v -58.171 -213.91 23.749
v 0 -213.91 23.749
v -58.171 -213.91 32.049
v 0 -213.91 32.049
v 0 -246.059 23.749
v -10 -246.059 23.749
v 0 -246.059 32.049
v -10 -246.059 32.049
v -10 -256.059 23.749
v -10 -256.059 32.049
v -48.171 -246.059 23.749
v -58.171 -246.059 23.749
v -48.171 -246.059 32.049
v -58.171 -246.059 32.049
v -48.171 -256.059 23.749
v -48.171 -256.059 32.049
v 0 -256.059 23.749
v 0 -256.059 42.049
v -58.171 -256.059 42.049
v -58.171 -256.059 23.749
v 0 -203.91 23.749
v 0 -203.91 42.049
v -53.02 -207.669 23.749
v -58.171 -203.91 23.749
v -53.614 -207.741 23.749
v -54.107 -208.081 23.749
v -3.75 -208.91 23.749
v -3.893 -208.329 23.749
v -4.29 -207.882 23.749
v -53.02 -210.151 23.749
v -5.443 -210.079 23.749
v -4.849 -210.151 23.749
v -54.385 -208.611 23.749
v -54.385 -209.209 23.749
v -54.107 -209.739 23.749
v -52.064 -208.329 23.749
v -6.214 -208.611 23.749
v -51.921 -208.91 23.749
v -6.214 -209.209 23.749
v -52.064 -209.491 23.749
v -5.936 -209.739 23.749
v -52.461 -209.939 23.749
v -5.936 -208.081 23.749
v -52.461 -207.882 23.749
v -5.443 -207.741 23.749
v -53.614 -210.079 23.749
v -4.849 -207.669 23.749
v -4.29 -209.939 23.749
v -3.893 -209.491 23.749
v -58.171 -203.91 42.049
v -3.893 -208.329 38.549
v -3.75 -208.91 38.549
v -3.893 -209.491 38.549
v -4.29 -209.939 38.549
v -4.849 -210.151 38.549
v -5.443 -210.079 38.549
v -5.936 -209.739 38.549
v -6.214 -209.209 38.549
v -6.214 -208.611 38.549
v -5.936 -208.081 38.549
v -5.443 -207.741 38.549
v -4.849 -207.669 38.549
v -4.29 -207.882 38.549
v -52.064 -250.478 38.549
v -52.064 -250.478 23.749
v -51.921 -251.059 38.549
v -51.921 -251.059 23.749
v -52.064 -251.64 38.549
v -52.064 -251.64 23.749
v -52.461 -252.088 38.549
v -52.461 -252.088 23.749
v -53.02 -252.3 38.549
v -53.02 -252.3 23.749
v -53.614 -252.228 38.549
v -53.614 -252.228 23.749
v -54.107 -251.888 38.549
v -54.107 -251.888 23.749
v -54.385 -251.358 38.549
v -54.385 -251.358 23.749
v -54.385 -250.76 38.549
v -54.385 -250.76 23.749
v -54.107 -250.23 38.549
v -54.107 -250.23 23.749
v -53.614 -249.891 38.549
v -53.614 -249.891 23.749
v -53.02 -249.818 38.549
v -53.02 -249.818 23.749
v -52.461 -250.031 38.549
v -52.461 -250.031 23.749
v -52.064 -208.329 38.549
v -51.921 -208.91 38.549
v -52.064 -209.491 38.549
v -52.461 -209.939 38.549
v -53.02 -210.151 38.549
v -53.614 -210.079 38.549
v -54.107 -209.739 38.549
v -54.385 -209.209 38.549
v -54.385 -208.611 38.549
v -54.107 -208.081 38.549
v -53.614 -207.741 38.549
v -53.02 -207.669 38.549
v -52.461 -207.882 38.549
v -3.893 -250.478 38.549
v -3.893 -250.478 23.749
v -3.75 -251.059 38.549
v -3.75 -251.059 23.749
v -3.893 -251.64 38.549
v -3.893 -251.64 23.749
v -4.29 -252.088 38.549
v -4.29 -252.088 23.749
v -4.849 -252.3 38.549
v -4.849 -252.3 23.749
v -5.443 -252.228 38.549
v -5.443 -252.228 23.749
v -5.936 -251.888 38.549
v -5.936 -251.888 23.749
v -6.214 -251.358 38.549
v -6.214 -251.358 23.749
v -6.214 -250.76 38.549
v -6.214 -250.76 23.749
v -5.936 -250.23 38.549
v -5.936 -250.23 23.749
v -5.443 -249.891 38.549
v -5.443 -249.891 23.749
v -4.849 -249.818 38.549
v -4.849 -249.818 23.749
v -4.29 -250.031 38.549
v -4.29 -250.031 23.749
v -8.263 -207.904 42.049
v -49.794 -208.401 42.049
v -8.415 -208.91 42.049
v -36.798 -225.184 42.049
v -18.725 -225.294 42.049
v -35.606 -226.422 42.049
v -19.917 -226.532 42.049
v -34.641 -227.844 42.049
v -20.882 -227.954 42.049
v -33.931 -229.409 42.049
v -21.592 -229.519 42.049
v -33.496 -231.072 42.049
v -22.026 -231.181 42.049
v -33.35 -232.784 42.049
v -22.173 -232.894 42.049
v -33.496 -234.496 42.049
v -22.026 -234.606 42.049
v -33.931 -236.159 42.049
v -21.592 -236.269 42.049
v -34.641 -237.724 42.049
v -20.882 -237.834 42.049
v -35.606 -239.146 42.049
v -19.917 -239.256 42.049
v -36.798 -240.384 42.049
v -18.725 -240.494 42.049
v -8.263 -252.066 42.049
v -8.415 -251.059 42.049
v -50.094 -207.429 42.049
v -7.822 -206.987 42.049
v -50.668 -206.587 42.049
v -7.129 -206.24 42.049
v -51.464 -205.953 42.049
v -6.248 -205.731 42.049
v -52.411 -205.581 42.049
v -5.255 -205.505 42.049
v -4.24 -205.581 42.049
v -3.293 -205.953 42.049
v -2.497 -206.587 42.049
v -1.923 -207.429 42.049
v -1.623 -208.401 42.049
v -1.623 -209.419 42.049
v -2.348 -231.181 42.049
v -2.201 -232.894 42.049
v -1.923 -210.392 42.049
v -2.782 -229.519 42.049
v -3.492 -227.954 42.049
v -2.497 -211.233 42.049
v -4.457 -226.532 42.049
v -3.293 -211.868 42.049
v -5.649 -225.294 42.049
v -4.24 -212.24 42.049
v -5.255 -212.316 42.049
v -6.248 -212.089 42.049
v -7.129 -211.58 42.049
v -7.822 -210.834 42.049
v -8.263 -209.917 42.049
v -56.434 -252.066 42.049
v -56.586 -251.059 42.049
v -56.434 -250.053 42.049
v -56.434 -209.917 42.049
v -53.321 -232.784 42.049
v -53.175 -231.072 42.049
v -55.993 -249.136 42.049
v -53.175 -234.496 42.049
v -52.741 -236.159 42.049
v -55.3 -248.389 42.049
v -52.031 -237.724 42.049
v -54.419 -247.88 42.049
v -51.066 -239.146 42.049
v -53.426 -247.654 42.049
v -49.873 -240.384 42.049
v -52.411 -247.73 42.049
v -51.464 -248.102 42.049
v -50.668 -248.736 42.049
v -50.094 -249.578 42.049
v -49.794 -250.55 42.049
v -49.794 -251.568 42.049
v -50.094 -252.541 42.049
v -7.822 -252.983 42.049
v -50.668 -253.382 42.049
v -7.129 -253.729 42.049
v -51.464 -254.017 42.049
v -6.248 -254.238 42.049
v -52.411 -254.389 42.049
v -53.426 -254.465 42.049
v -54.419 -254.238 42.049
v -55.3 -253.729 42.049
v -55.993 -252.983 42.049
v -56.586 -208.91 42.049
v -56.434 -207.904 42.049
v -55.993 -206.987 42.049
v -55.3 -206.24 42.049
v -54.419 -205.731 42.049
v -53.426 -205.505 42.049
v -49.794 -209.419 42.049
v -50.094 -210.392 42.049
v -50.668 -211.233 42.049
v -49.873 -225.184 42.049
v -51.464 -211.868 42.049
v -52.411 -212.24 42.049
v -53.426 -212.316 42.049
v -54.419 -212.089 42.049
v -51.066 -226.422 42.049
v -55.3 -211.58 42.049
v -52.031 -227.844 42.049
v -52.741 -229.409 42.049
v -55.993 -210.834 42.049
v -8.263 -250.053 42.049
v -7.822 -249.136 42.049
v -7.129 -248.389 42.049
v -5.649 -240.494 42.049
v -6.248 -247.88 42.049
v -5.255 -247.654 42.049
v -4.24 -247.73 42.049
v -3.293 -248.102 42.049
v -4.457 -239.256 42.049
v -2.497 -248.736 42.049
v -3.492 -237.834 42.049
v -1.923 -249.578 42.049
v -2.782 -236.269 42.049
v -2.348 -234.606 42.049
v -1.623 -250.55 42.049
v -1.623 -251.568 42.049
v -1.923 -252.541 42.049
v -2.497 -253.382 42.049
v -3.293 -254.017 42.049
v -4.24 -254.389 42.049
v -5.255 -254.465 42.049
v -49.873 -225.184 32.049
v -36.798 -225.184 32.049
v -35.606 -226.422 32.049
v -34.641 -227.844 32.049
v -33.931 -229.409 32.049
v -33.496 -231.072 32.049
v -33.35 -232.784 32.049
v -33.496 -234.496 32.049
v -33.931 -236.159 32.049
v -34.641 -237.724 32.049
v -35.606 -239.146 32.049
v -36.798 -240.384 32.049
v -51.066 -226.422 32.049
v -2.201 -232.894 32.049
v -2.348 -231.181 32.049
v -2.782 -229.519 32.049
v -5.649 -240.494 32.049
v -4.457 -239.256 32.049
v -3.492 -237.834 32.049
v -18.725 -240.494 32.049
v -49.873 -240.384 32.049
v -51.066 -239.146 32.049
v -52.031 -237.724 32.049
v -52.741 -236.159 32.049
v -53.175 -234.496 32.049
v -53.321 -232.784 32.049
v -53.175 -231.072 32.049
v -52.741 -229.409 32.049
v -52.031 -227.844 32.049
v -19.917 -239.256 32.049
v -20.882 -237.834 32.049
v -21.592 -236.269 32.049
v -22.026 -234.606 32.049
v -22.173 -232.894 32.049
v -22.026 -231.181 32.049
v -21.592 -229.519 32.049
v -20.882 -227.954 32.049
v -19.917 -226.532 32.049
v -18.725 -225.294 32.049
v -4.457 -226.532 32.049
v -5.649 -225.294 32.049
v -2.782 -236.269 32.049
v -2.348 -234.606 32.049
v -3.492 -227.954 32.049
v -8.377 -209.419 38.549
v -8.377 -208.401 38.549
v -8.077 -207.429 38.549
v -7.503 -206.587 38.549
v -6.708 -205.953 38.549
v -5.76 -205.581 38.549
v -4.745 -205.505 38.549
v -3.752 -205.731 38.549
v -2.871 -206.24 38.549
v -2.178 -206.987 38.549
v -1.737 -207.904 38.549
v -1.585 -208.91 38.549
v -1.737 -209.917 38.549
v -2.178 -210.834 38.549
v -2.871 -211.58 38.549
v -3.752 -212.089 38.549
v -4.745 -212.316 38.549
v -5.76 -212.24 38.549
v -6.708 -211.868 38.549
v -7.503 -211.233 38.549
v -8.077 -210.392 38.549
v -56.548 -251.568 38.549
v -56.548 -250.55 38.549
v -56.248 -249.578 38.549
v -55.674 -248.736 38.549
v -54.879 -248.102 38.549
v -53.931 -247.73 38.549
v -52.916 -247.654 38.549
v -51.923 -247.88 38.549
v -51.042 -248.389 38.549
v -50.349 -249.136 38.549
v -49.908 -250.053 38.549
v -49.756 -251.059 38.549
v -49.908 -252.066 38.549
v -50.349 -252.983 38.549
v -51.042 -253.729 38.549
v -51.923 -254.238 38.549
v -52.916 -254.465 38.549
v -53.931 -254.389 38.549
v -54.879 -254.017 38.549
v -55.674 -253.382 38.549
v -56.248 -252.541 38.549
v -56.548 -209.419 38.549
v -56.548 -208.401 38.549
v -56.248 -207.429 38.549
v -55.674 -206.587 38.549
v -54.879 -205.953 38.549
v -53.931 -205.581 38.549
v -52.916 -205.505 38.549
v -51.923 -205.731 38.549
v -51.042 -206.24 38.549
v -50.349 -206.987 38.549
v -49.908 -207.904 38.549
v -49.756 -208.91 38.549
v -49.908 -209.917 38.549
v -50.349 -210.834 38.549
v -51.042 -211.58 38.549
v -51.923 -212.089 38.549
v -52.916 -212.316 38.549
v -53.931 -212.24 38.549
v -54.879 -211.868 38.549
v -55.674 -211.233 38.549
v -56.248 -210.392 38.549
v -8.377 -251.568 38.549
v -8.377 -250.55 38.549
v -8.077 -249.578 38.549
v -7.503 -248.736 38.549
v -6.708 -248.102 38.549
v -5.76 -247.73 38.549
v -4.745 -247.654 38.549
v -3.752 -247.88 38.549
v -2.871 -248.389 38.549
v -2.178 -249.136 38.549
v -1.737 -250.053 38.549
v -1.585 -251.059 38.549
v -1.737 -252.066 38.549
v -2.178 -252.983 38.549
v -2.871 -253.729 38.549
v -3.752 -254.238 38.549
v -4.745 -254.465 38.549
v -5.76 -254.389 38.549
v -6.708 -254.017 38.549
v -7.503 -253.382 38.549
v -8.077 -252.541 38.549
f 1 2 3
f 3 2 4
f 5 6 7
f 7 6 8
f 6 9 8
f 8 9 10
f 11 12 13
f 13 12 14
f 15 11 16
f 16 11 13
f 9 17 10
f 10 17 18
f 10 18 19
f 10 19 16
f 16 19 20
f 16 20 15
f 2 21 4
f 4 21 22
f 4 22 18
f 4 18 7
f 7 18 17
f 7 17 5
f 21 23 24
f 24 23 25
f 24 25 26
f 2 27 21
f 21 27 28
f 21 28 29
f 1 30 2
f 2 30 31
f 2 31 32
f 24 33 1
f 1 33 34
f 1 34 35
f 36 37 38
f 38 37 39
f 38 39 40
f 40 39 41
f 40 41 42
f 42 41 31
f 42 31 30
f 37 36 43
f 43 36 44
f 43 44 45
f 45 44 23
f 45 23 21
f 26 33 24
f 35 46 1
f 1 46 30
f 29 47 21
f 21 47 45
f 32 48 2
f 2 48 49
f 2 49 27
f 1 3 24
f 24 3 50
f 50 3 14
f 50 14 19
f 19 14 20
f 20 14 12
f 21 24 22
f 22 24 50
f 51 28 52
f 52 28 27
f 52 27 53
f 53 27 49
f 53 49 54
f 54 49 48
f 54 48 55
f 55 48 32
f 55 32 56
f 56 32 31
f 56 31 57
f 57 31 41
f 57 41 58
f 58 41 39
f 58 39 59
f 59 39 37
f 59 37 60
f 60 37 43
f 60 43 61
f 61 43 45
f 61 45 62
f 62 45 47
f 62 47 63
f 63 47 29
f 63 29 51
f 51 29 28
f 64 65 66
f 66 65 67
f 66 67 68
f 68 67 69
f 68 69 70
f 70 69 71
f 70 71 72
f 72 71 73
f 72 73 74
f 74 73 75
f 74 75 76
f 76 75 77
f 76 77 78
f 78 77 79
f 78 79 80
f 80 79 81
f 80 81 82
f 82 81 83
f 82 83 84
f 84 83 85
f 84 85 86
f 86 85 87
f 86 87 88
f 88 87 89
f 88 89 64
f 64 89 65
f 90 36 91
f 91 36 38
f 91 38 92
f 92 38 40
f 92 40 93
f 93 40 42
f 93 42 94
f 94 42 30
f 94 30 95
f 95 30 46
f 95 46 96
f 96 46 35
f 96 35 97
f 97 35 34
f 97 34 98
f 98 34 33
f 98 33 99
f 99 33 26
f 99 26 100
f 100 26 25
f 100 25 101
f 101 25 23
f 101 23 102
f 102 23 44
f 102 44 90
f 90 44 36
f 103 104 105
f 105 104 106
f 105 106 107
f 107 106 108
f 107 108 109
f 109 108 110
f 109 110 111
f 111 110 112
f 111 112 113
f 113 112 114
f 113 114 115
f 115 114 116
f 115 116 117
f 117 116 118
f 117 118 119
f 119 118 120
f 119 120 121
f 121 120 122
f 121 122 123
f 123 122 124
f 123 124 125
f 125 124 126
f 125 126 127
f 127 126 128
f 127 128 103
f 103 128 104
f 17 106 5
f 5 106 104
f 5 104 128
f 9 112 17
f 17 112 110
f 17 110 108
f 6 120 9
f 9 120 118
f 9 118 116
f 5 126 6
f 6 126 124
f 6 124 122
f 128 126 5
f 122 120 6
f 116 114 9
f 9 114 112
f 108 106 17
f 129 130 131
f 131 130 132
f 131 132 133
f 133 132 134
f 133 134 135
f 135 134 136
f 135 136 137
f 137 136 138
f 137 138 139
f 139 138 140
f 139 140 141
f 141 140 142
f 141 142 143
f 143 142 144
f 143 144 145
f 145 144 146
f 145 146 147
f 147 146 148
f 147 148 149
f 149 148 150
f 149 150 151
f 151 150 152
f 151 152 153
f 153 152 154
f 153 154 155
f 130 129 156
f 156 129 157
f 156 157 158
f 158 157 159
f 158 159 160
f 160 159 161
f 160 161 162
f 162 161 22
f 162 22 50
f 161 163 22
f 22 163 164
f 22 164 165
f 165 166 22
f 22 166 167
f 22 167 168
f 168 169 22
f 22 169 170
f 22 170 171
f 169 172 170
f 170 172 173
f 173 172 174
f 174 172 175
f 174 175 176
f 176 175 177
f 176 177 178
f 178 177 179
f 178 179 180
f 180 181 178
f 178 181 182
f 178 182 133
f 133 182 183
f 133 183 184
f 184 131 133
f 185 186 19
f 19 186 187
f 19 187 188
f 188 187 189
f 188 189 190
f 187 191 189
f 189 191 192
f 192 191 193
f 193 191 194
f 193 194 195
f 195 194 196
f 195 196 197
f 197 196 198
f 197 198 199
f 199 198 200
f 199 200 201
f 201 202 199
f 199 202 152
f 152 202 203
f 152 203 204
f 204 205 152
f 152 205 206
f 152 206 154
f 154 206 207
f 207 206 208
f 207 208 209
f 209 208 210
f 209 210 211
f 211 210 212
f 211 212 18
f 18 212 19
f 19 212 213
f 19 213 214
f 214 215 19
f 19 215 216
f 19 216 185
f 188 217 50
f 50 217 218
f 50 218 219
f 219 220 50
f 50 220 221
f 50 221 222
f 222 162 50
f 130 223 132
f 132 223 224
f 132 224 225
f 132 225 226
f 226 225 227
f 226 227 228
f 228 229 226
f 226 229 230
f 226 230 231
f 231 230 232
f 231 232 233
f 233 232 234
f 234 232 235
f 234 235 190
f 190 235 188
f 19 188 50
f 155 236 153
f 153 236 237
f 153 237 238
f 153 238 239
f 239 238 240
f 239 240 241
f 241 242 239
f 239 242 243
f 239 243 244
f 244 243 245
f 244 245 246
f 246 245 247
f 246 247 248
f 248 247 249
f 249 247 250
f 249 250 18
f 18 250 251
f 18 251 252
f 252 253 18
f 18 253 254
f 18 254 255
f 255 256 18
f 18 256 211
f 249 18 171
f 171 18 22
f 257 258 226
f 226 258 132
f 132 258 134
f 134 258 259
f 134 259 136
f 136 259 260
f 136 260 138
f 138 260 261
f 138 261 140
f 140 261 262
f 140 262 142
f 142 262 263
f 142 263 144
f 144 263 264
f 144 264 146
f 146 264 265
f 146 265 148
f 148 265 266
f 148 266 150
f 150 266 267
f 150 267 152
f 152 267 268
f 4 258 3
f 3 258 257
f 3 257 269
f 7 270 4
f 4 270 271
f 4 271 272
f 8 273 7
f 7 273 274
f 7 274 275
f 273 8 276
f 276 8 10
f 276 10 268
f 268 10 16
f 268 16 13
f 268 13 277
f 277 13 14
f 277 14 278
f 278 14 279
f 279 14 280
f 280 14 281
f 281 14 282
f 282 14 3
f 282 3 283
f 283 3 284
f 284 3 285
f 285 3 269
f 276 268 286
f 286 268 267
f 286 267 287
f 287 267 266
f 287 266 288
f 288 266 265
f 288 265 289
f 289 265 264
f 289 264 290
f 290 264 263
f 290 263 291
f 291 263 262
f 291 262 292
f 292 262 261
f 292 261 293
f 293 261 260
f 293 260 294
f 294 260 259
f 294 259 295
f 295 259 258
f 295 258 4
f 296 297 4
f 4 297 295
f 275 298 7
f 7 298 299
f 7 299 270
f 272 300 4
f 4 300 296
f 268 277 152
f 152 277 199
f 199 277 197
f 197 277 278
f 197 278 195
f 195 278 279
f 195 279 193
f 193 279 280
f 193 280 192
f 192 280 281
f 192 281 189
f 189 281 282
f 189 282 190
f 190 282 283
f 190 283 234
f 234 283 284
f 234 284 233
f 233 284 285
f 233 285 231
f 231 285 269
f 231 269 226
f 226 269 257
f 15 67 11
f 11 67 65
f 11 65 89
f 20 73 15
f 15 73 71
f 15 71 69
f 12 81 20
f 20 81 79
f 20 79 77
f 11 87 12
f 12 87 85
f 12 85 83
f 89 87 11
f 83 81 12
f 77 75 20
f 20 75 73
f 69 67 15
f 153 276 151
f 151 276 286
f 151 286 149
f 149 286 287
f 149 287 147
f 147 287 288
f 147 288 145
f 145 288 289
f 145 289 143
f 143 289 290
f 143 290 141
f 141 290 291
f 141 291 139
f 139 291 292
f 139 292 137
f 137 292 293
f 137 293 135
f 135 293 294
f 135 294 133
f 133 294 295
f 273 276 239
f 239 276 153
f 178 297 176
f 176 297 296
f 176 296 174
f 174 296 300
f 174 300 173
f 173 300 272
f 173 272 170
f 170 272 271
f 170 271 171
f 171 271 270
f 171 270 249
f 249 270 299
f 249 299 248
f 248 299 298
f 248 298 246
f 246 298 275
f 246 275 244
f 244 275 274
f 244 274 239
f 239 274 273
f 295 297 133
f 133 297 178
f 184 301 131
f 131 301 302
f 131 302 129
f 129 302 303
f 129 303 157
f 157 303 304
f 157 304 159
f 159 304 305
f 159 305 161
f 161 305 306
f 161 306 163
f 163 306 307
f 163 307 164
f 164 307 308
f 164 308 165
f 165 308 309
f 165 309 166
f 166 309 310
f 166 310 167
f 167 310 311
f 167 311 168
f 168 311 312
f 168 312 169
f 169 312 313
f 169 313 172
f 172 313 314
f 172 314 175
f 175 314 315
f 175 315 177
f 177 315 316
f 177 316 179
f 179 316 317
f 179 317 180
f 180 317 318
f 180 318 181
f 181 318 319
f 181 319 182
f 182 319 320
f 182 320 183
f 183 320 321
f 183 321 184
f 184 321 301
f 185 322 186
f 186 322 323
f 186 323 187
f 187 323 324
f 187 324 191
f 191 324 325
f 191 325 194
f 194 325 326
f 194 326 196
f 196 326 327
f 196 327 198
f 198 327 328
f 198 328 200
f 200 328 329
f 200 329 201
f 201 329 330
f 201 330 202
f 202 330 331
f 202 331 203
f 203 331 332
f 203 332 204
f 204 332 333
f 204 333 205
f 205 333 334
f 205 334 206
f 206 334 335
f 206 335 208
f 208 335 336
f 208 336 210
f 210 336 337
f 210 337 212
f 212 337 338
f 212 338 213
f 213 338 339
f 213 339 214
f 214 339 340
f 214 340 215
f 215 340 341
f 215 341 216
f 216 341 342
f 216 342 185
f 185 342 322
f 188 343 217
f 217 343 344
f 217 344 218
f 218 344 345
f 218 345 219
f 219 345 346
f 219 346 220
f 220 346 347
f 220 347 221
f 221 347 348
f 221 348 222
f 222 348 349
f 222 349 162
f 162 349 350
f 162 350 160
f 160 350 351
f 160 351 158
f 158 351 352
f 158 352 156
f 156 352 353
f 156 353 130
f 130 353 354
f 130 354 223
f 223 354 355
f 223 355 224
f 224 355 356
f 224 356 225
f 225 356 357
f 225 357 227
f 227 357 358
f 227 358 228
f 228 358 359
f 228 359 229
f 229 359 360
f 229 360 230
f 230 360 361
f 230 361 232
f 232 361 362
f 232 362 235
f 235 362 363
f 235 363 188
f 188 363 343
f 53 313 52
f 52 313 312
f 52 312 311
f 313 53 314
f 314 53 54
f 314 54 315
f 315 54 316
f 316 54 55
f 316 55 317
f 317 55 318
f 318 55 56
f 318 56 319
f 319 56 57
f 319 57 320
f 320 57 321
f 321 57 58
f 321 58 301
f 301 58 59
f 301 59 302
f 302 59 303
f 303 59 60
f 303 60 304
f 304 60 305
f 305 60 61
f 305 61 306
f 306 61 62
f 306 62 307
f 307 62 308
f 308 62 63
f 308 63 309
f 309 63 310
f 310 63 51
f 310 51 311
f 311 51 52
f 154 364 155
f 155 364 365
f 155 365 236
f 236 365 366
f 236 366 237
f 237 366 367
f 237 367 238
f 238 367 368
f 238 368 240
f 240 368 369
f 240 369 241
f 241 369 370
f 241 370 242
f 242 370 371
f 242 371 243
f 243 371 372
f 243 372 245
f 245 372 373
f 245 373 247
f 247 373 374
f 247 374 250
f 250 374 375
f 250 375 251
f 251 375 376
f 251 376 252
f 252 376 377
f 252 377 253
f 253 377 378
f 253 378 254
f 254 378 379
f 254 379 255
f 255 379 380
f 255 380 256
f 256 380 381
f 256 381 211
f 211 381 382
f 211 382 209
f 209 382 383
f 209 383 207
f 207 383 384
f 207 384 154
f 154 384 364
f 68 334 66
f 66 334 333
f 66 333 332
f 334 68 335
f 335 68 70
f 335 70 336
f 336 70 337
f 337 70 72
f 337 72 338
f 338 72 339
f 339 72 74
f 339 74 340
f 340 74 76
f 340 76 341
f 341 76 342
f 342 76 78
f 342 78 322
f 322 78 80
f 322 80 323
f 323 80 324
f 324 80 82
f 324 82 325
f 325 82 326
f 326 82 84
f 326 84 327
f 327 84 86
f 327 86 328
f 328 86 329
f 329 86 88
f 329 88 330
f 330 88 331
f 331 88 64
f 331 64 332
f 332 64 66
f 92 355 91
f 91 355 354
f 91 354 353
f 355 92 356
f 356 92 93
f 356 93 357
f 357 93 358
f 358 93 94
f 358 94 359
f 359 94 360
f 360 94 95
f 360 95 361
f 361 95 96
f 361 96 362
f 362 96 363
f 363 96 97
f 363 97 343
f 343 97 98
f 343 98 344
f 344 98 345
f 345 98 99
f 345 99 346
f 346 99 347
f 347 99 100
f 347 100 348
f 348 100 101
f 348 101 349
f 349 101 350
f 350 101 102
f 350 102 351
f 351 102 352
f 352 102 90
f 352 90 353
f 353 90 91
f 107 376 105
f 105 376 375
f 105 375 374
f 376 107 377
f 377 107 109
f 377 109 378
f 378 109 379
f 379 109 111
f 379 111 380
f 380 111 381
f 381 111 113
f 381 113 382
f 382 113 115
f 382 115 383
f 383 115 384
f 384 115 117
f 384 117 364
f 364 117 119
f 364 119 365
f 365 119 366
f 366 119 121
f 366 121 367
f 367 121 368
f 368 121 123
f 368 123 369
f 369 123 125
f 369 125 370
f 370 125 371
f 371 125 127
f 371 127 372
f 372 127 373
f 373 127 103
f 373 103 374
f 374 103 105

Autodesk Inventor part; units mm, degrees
ref_plane "YZ Plane" through (0, 0, 0) normal (1, 0, 0) x (0, 1, 0)
ref_plane "XZ Plane" through (0, 0, 0) normal (0, 1, 0) x (-1, 0, 0)
ref_plane "XY Plane" through (0, 0, 0) normal (0, 0, 1) x (1, 0, 0)
ref_plane "Work Plane1" through (-29.0856, -229.9846, 23.749) normal (0, 0, 1) x (1, 0, 0)
sketch "Sketch1" plane through (-29.0856, -229.9846, 23.749) normal (0, 0, 1) x (1, 0, 0)
  line L0 (-29.0856, -26.0746) -> (29.0856, -26.0746) construction
  line L1 (29.0856, -26.0746) -> (29.0856, 26.0746) construction
  line L2 (29.0856, 26.0746) -> (-29.0856, 26.0746) construction
  line L3 (-29.0856, 26.0746) -> (-29.0856, -26.0746) construction
  circle A0 centre (24.0856, -21.0746) radius 1.25 construction
  circle A1 centre (-24.0854, -21.0746) radius 1.25 construction
  circle A2 centre (24.0856, 21.0744) radius 1.25 construction
  circle A3 centre (-24.0854, 21.0744) radius 1.25 construction
  arc A4 (23.3986, -10.4091) -> (23.3986, 4.5909) centre (16.7842, -2.9091) ccw construction
  line L4 (10.3986, 4.5909) -> (23.3986, 4.5909) construction
  arc A5 (10.3986, 4.5909) -> (10.3986, -10.4091) centre (17.0129, -2.9091) ccw construction
  line L5 (23.3986, -10.4091) -> (10.3986, -10.4091) construction
  arc A6 (-7.7501, -10.2995) -> (-7.7501, 4.7005) centre (-14.3644, -2.7995) ccw construction
  line L6 (-20.7501, 4.7005) -> (-7.7501, 4.7005) construction
  arc A7 (-20.7501, 4.7005) -> (-20.7501, -10.2995) centre (-14.1357, -2.7995) ccw construction
  line L7 (-7.7501, -10.2995) -> (-20.7501, -10.2995) construction
  spline S0 degree 3 poles (-70.3801, 6.5313) (-70.2603, 6.7214) (-70.0805, 7.0065) (-69.8595, 7.3979) (-69.7007, 7.6952) (-69.5502, 7.9968) (-69.4085, 8.3027) (-69.2764, 8.6129) (-69.155, 8.9274) (-69.046, 9.2463) (-68.95, 9.5696) (-68.8876, 9.8435) (-68.8425, 10.0636) (-68.7948, 10.2255) (-68.7304, 10.3815) (-68.6465, 10.5283) (-68.558, 10.6379) (-68.4781, 10.7171) (-68.4105, 10.7676) (-68.3413, 10.816) (-68.265, 10.8522) (-68.1875, 10.8857) (-68.1054, 10.9055) (-68.0227, 10.9222) (-67.9101, 10.9262) (-67.7698, 10.9236) (-67.6294, 10.9262) (-67.5169, 10.9222) (-67.4341, 10.9055) (-67.352, 10.8857) (-67.2745, 10.8522) (-67.1982, 10.816) (-67.129, 10.7676) (-67.0614, 10.7171) (-66.9815, 10.6379) (-66.8931, 10.5283) (-66.8091, 10.3815) (-66.7447, 10.2255) (-66.6971, 10.0636) (-66.652, 9.8435) (-66.5895, 9.5696) (-66.4936, 9.2463) (-66.3845, 8.9274) (-66.2631, 8.6129) (-66.1311, 8.3027) (-65.9894, 7.9968) (-65.8389, 7.6952) (-65.68, 7.3979) (-65.459, 7.0065) (-65.2792, 6.7214) (-65.1594, 6.5313) knots -1.0784 -1.0784 -1.0784 -1.0784 -1.010995 -0.977291 -0.943586 -0.909882 -0.876178 -0.842474 -0.80877 -0.775067 -0.741365 -0.707665 -0.690816 -0.67397 -0.657123 -0.640284 -0.623449 -0.615023 -0.606598 -0.598176 -0.589749 -0.581327 -0.572901 -0.564477 -0.556053 -0.5392 -0.522347 -0.513923 -0.505499 -0.497074 -0.488651 -0.480225 -0.471802 -0.463377 -0.454951 -0.438116 -0.421277 -0.40443 -0.387584 -0.370735 -0.337035 -0.303333 -0.26963 -0.235926 -0.202222 -0.168518 -0.134814 -0.101109 -0.067405 0 0 0 0 construction
  line L8 (-65.1594, 6.5313) -> (-64.0971, 6.5313) construction
  spline S1 degree 3 poles (-64.0971, 6.5313) (-63.9773, 6.7214) (-63.7975, 7.0065) (-63.5765, 7.3979) (-63.4177, 7.6952) (-63.2672, 7.9968) (-63.1255, 8.3027) (-62.9934, 8.6129) (-62.872, 8.9274) (-62.763, 9.2463) (-62.667, 9.5696) (-62.6046, 9.8435) (-62.5595, 10.0636) (-62.5118, 10.2255) (-62.4474, 10.3815) (-62.3635, 10.5283) (-62.275, 10.6379) (-62.1951, 10.7171) (-62.1275, 10.7676) (-62.0583, 10.816) (-61.982, 10.8522) (-61.9045, 10.8857) (-61.8224, 10.9055) (-61.7397, 10.9222) (-61.6271, 10.9262) (-61.4868, 10.9236) (-61.3464, 10.9262) (-61.2339, 10.9222) (-61.1511, 10.9055) (-61.069, 10.8857) (-60.9915, 10.8522) (-60.9152, 10.816) (-60.846, 10.7676) (-60.7784, 10.7171) (-60.6985, 10.6379) (-60.6101, 10.5283) (-60.5261, 10.3815) (-60.4617, 10.2255) (-60.4141, 10.0636) (-60.369, 9.8435) (-60.3065, 9.5696) (-60.2106, 9.2463) (-60.1015, 8.9274) (-59.9801, 8.6129) (-59.8481, 8.3027) (-59.7064, 7.9968) (-59.5559, 7.6952) (-59.397, 7.3979) (-59.176, 7.0065) (-58.9962, 6.7214) (-58.8764, 6.5313) knots -1.0784 -1.0784 -1.0784 -1.0784 -1.010995 -0.977291 -0.943586 -0.909882 -0.876178 -0.842474 -0.80877 -0.775067 -0.741365 -0.707665 -0.690816 -0.67397 -0.657123 -0.640284 -0.623449 -0.615023 -0.606598 -0.598176 -0.589749 -0.581327 -0.572901 -0.564477 -0.556053 -0.5392 -0.522347 -0.513923 -0.505499 -0.497074 -0.488651 -0.480225 -0.471802 -0.463377 -0.454951 -0.438116 -0.421277 -0.40443 -0.387584 -0.370735 -0.337035 -0.303333 -0.26963 -0.235926 -0.202222 -0.168518 -0.134814 -0.101109 -0.067405 0 0 0 0 construction
  line L9 (-58.8764, 6.5313) -> (-57.8141, 6.5313) construction
  spline S2 degree 3 poles (-57.8141, 6.5313) (-57.6943, 6.7214) (-57.5145, 7.0065) (-57.2935, 7.3979) (-57.1347, 7.6952) (-56.9842, 7.9968) (-56.8425, 8.3027) (-56.7104, 8.6129) (-56.589, 8.9274) (-56.48, 9.2463) (-56.384, 9.5696) (-56.3216, 9.8435) (-56.2765, 10.0636) (-56.2288, 10.2255) (-56.1644, 10.3815) (-56.0805, 10.5283) (-55.992, 10.6379) (-55.9121, 10.7171) (-55.8445, 10.7676) (-55.7753, 10.816) (-55.699, 10.8522) (-55.6215, 10.8857) (-55.5394, 10.9055) (-55.4567, 10.9222) (-55.3441, 10.9262) (-55.2038, 10.9236) (-55.0634, 10.9262) (-54.9509, 10.9222) (-54.8681, 10.9055) (-54.786, 10.8857) (-54.7085, 10.8522) (-54.6322, 10.816) (-54.563, 10.7676) (-54.4954, 10.7171) (-54.4155, 10.6379) (-54.3271, 10.5283) (-54.2431, 10.3815) (-54.1787, 10.2255) (-54.1311, 10.0636) (-54.086, 9.8435) (-54.0235, 9.5696) (-53.9276, 9.2463) (-53.8185, 8.9274) (-53.6971, 8.6129) (-53.5651, 8.3027) (-53.4234, 7.9968) (-53.2729, 7.6952) (-53.114, 7.3979) (-52.893, 7.0065) (-52.7132, 6.7214) (-52.5934, 6.5313) knots -1.0784 -1.0784 -1.0784 -1.0784 -1.010995 -0.977291 -0.943586 -0.909882 -0.876178 -0.842474 -0.80877 -0.775067 -0.741365 -0.707665 -0.690816 -0.67397 -0.657123 -0.640284 -0.623449 -0.615023 -0.606598 -0.598176 -0.589749 -0.581327 -0.572901 -0.564477 -0.556053 -0.5392 -0.522347 -0.513923 -0.505499 -0.497074 -0.488651 -0.480225 -0.471802 -0.463377 -0.454951 -0.438116 -0.421277 -0.40443 -0.387584 -0.370735 -0.337035 -0.303333 -0.26963 -0.235926 -0.202222 -0.168518 -0.134814 -0.101109 -0.067405 0 0 0 0 construction
  line L10 (-52.5934, 6.5313) -> (-51.5311, 6.5313) construction
  spline S3 degree 3 poles (-51.5311, 6.5313) (-51.4113, 6.7214) (-51.2315, 7.0065) (-51.0105, 7.3979) (-50.8517, 7.6952) (-50.7012, 7.9968) (-50.5595, 8.3027) (-50.4274, 8.6129) (-50.306, 8.9274) (-50.197, 9.2463) (-50.101, 9.5696) (-50.0386, 9.8435) (-49.9935, 10.0636) (-49.9458, 10.2255) (-49.8814, 10.3815) (-49.7975, 10.5283) (-49.709, 10.6379) (-49.6291, 10.7171) (-49.5615, 10.7676) (-49.4923, 10.816) (-49.416, 10.8522) (-49.3385, 10.8857) (-49.2564, 10.9055) (-49.1737, 10.9222) (-49.0611, 10.9262) (-48.9208, 10.9236) (-48.7804, 10.9262) (-48.6679, 10.9222) (-48.5851, 10.9055) (-48.503, 10.8857) (-48.4255, 10.8522) (-48.3492, 10.816) (-48.28, 10.7676) (-48.2124, 10.7171) (-48.1325, 10.6379) (-48.0441, 10.5283) (-47.9601, 10.3815) (-47.8957, 10.2255) (-47.8481, 10.0636) (-47.803, 9.8435) (-47.7405, 9.5696) (-47.6446, 9.2463) (-47.5355, 8.9274) (-47.4141, 8.6129) (-47.2821, 8.3027) (-47.1404, 7.9968) (-46.9899, 7.6952) (-46.831, 7.3979) (-46.61, 7.0065) (-46.4302, 6.7214) (-46.3104, 6.5313) knots -1.0784 -1.0784 -1.0784 -1.0784 -1.010995 -0.977291 -0.943586 -0.909882 -0.876178 -0.842474 -0.80877 -0.775067 -0.741365 -0.707665 -0.690816 -0.67397 -0.657123 -0.640284 -0.623449 -0.615023 -0.606598 -0.598176 -0.589749 -0.581327 -0.572901 -0.564477 -0.556053 -0.5392 -0.522347 -0.513923 -0.505499 -0.497074 -0.488651 -0.480225 -0.471802 -0.463377 -0.454951 -0.438116 -0.421277 -0.40443 -0.387584 -0.370735 -0.337035 -0.303333 -0.26963 -0.235926 -0.202222 -0.168518 -0.134814 -0.101109 -0.067405 0 0 0 0 construction
  line L11 (-46.3104, 6.5313) -> (-45.2481, 6.5313) construction
  spline S4 degree 3 poles (-45.2481, 6.5313) (-45.1283, 6.7214) (-44.9485, 7.0065) (-44.7275, 7.3979) (-44.5687, 7.6952) (-44.4182, 7.9968) (-44.2765, 8.3027) (-44.1444, 8.6129) (-44.023, 8.9274) (-43.914, 9.2463) (-43.818, 9.5696) (-43.7556, 9.8435) (-43.7105, 10.0636) (-43.6628, 10.2255) (-43.5984, 10.3815) (-43.5145, 10.5283) (-43.426, 10.6379) (-43.3461, 10.7171) (-43.2785, 10.7676) (-43.2093, 10.816) (-43.133, 10.8522) (-43.0555, 10.8857) (-42.9734, 10.9055) (-42.8907, 10.9222) (-42.7781, 10.9262) (-42.6378, 10.9236) (-42.4974, 10.9262) (-42.3849, 10.9222) (-42.3021, 10.9055) (-42.22, 10.8857) (-42.1425, 10.8522) (-42.0662, 10.816) (-41.997, 10.7676) (-41.9294, 10.7171) (-41.8495, 10.6379) (-41.7611, 10.5283) (-41.6771, 10.3815) (-41.6127, 10.2255) (-41.5651, 10.0636) (-41.52, 9.8435) (-41.4575, 9.5696) (-41.3616, 9.2463) (-41.2525, 8.9274) (-41.1311, 8.6129) (-40.9991, 8.3027) (-40.8574, 7.9968) (-40.7069, 7.6952) (-40.548, 7.3979) (-40.327, 7.0065) (-40.1472, 6.7214) (-40.0274, 6.5313) knots -1.0784 -1.0784 -1.0784 -1.0784 -1.010995 -0.977291 -0.943586 -0.909882 -0.876178 -0.842474 -0.80877 -0.775067 -0.741365 -0.707665 -0.690816 -0.67397 -0.657123 -0.640284 -0.623449 -0.615023 -0.606598 -0.598176 -0.589749 -0.581327 -0.572901 -0.564477 -0.556053 -0.5392 -0.522347 -0.513923 -0.505499 -0.497074 -0.488651 -0.480225 -0.471802 -0.463377 -0.454951 -0.438116 -0.421277 -0.40443 -0.387584 -0.370735 -0.337035 -0.303333 -0.26963 -0.235926 -0.202222 -0.168518 -0.134814 -0.101109 -0.067405 0 0 0 0 construction
  line L12 (-40.0274, 6.5313) -> (-38.9651, 6.5313) construction
  spline S5 degree 3 poles (-38.9651, 6.5313) (-38.8453, 6.7214) (-38.6655, 7.0065) (-38.4445, 7.3979) (-38.2857, 7.6952) (-38.1352, 7.9968) (-37.9935, 8.3027) (-37.8614, 8.6129) (-37.74, 8.9274) (-37.631, 9.2463) (-37.535, 9.5696) (-37.4726, 9.8435) (-37.4275, 10.0636) (-37.3798, 10.2255) (-37.3154, 10.3815) (-37.2315, 10.5283) (-37.143, 10.6379) (-37.0631, 10.7171) (-36.9955, 10.7676) (-36.9263, 10.816) (-36.85, 10.8522) (-36.7725, 10.8857) (-36.6904, 10.9055) (-36.6077, 10.9222) (-36.4951, 10.9262) (-36.3548, 10.9236) (-36.2144, 10.9262) (-36.1019, 10.9222) (-36.0191, 10.9055) (-35.937, 10.8857) (-35.8595, 10.8522) (-35.7832, 10.816) (-35.714, 10.7676) (-35.6464, 10.7171) (-35.5665, 10.6379) (-35.4781, 10.5283) (-35.3941, 10.3815) (-35.3297, 10.2255) (-35.2821, 10.0636) (-35.237, 9.8435) (-35.1745, 9.5696) (-35.0786, 9.2463) (-34.9695, 8.9274) (-34.8481, 8.6129) (-34.7161, 8.3027) (-34.5744, 7.9968) (-34.4239, 7.6952) (-34.265, 7.3979) (-34.044, 7.0065) (-33.8642, 6.7214) (-33.7444, 6.5313) knots -1.0784 -1.0784 -1.0784 -1.0784 -1.010995 -0.977291 -0.943586 -0.909882 -0.876178 -0.842474 -0.80877 -0.775067 -0.741365 -0.707665 -0.690816 -0.67397 -0.657123 -0.640284 -0.623449 -0.615023 -0.606598 -0.598176 -0.589749 -0.581327 -0.572901 -0.564477 -0.556053 -0.5392 -0.522347 -0.513923 -0.505499 -0.497074 -0.488651 -0.480225 -0.471802 -0.463377 -0.454951 -0.438116 -0.421277 -0.40443 -0.387584 -0.370735 -0.337035 -0.303333 -0.26963 -0.235926 -0.202222 -0.168518 -0.134814 -0.101109 -0.067405 0 0 0 0 construction
  line L13 (-33.7444, 6.5313) -> (-32.6821, 6.5313) construction
  spline S6 degree 3 poles (-32.6821, 6.5313) (-32.5623, 6.7214) (-32.3825, 7.0065) (-32.1615, 7.3979) (-32.0027, 7.6952) (-31.8522, 7.9968) (-31.7105, 8.3027) (-31.5784, 8.6129) (-31.457, 8.9274) (-31.348, 9.2463) (-31.252, 9.5696) (-31.1896, 9.8435) (-31.1445, 10.0636) (-31.0968, 10.2255) (-31.0324, 10.3815) (-30.9485, 10.5283) (-30.86, 10.6379) (-30.7801, 10.7171) (-30.7125, 10.7676) (-30.6433, 10.816) (-30.567, 10.8522) (-30.4895, 10.8857) (-30.4074, 10.9055) (-30.3247, 10.9222) (-30.2121, 10.9262) (-30.0718, 10.9236) (-29.9314, 10.9262) (-29.8189, 10.9222) (-29.7361, 10.9055) (-29.654, 10.8857) (-29.5765, 10.8522) (-29.5002, 10.816) (-29.431, 10.7676) (-29.3634, 10.7171) (-29.2835, 10.6379) (-29.1951, 10.5283) (-29.1111, 10.3815) (-29.0467, 10.2255) (-28.9991, 10.0636) (-28.954, 9.8435) (-28.8915, 9.5696) (-28.7956, 9.2463) (-28.6865, 8.9274) (-28.5651, 8.6129) (-28.4331, 8.3027) (-28.2914, 7.9968) (-28.1409, 7.6952) (-27.982, 7.3979) (-27.761, 7.0065) (-27.5812, 6.7214) (-27.4614, 6.5313) knots -1.0784 -1.0784 -1.0784 -1.0784 -1.010995 -0.977291 -0.943586 -0.909882 -0.876178 -0.842474 -0.80877 -0.775067 -0.741365 -0.707665 -0.690816 -0.67397 -0.657123 -0.640284 -0.623449 -0.615023 -0.606598 -0.598176 -0.589749 -0.581327 -0.572901 -0.564477 -0.556053 -0.5392 -0.522347 -0.513923 -0.505499 -0.497074 -0.488651 -0.480225 -0.471802 -0.463377 -0.454951 -0.438116 -0.421277 -0.40443 -0.387584 -0.370735 -0.337035 -0.303333 -0.26963 -0.235926 -0.202222 -0.168518 -0.134814 -0.101109 -0.067405 0 0 0 0 construction
  line L14 (-27.4614, 6.5313) -> (-26.3991, 6.5313) construction
  spline S7 degree 3 poles (-26.3991, 6.5313) (-26.2793, 6.7214) (-26.0995, 7.0065) (-25.8785, 7.3979) (-25.7197, 7.6952) (-25.5692, 7.9968) (-25.4275, 8.3027) (-25.2954, 8.6129) (-25.174, 8.9274) (-25.065, 9.2463) (-24.969, 9.5696) (-24.9066, 9.8435) (-24.8615, 10.0636) (-24.8138, 10.2255) (-24.7494, 10.3815) (-24.6655, 10.5283) (-24.577, 10.6379) (-24.4971, 10.7171) (-24.4295, 10.7676) (-24.3603, 10.816) (-24.284, 10.8522) (-24.2065, 10.8857) (-24.1244, 10.9055) (-24.0417, 10.9222) (-23.9291, 10.9262) (-23.7888, 10.9236) (-23.6484, 10.9262) (-23.5359, 10.9222) (-23.4531, 10.9055) (-23.371, 10.8857) (-23.2935, 10.8522) (-23.2172, 10.816) (-23.148, 10.7676) (-23.0804, 10.7171) (-23.0005, 10.6379) (-22.9121, 10.5283) (-22.8281, 10.3815) (-22.7637, 10.2255) (-22.7161, 10.0636) (-22.671, 9.8435) (-22.6085, 9.5696) (-22.5126, 9.2463) (-22.4035, 8.9274) (-22.2821, 8.6129) (-22.1501, 8.3027) (-22.0084, 7.9968) (-21.8579, 7.6952) (-21.699, 7.3979) (-21.478, 7.0065) (-21.2982, 6.7214) (-21.1784, 6.5313) knots -1.0784 -1.0784 -1.0784 -1.0784 -1.010995 -0.977291 -0.943586 -0.909882 -0.876178 -0.842474 -0.80877 -0.775067 -0.741365 -0.707665 -0.690816 -0.67397 -0.657123 -0.640284 -0.623449 -0.615023 -0.606598 -0.598176 -0.589749 -0.581327 -0.572901 -0.564477 -0.556053 -0.5392 -0.522347 -0.513923 -0.505499 -0.497074 -0.488651 -0.480225 -0.471802 -0.463377 -0.454951 -0.438116 -0.421277 -0.40443 -0.387584 -0.370735 -0.337035 -0.303333 -0.26963 -0.235926 -0.202222 -0.168518 -0.134814 -0.101109 -0.067405 0 0 0 0 construction
  line L15 (-21.1784, 6.5313) -> (-20.1161, 6.5313) construction
  spline S8 degree 3 poles (-20.1161, 6.5313) (-19.9963, 6.7214) (-19.8165, 7.0065) (-19.5955, 7.3979) (-19.4367, 7.6952) (-19.2862, 7.9968) (-19.1445, 8.3027) (-19.0124, 8.6129) (-18.891, 8.9274) (-18.782, 9.2463) (-18.686, 9.5696) (-18.6236, 9.8435) (-18.5785, 10.0636) (-18.5308, 10.2255) (-18.4664, 10.3815) (-18.3825, 10.5283) (-18.294, 10.6379) (-18.2141, 10.7171) (-18.1465, 10.7676) (-18.0773, 10.816) (-18.001, 10.8522) (-17.9235, 10.8857) (-17.8414, 10.9055) (-17.7587, 10.9222) (-17.6461, 10.9262) (-17.5058, 10.9236) (-17.3654, 10.9262) (-17.2529, 10.9222) (-17.1701, 10.9055) (-17.088, 10.8857) (-17.0105, 10.8522) (-16.9342, 10.816) (-16.865, 10.7676) (-16.7974, 10.7171) (-16.7175, 10.6379) (-16.6291, 10.5283) (-16.5451, 10.3815) (-16.4807, 10.2255) (-16.4331, 10.0636) (-16.388, 9.8435) (-16.3255, 9.5696) (-16.2296, 9.2463) (-16.1205, 8.9274) (-15.9991, 8.6129) (-15.8671, 8.3027) (-15.7254, 7.9968) (-15.5749, 7.6952) (-15.416, 7.3979) (-15.195, 7.0065) (-15.0152, 6.7214) (-14.8954, 6.5313) knots -1.0784 -1.0784 -1.0784 -1.0784 -1.010995 -0.977291 -0.943586 -0.909882 -0.876178 -0.842474 -0.80877 -0.775067 -0.741365 -0.707665 -0.690816 -0.67397 -0.657123 -0.640284 -0.623449 -0.615023 -0.606598 -0.598176 -0.589749 -0.581327 -0.572901 -0.564477 -0.556053 -0.5392 -0.522347 -0.513923 -0.505499 -0.497074 -0.488651 -0.480225 -0.471802 -0.463377 -0.454951 -0.438116 -0.421277 -0.40443 -0.387584 -0.370735 -0.337035 -0.303333 -0.26963 -0.235926 -0.202222 -0.168518 -0.134814 -0.101109 -0.067405 0 0 0 0 construction
  line L16 (-14.8954, 6.5313) -> (-13.8331, 6.5313) construction
  spline S9 degree 3 poles (-13.8331, 6.5313) (-13.7133, 6.7214) (-13.5335, 7.0065) (-13.3125, 7.3979) (-13.1537, 7.6952) (-13.0032, 7.9968) (-12.8615, 8.3027) (-12.7294, 8.6129) (-12.608, 8.9274) (-12.499, 9.2463) (-12.403, 9.5696) (-12.3406, 9.8435) (-12.2955, 10.0636) (-12.2478, 10.2255) (-12.1834, 10.3815) (-12.0995, 10.5283) (-12.011, 10.6379) (-11.9311, 10.7171) (-11.8635, 10.7676) (-11.7943, 10.816) (-11.718, 10.8522) (-11.6405, 10.8857) (-11.5584, 10.9055) (-11.4757, 10.9222) (-11.3631, 10.9262) (-11.2228, 10.9236) (-11.0824, 10.9262) (-10.9699, 10.9222) (-10.8871, 10.9055) (-10.805, 10.8857) (-10.7275, 10.8522) (-10.6512, 10.816) (-10.582, 10.7676) (-10.5144, 10.7171) (-10.4345, 10.6379) (-10.3461, 10.5283) (-10.2621, 10.3815) (-10.1977, 10.2255) (-10.1501, 10.0636) (-10.105, 9.8435) (-10.0425, 9.5696) (-9.9466, 9.2463) (-9.8375, 8.9274) (-9.7161, 8.6129) (-9.5841, 8.3027) (-9.4424, 7.9968) (-9.2919, 7.6952) (-9.133, 7.3979) (-8.912, 7.0065) (-8.7322, 6.7214) (-8.6124, 6.5313) knots -1.0784 -1.0784 -1.0784 -1.0784 -1.010995 -0.977291 -0.943586 -0.909882 -0.876178 -0.842474 -0.80877 -0.775067 -0.741365 -0.707665 -0.690816 -0.67397 -0.657123 -0.640284 -0.623449 -0.615023 -0.606598 -0.598176 -0.589749 -0.581327 -0.572901 -0.564477 -0.556053 -0.5392 -0.522347 -0.513923 -0.505499 -0.497074 -0.488651 -0.480225 -0.471802 -0.463377 -0.454951 -0.438116 -0.421277 -0.40443 -0.387584 -0.370735 -0.337035 -0.303333 -0.26963 -0.235926 -0.202222 -0.168518 -0.134814 -0.101109 -0.067405 0 0 0 0 construction
  line L17 (-8.6124, 6.5313) -> (-7.5501, 6.5313) construction
  spline S10 degree 3 poles (-7.5501, 6.5313) (-7.4303, 6.7214) (-7.2505, 7.0065) (-7.0295, 7.3979) (-6.8707, 7.6952) (-6.7202, 7.9968) (-6.5785, 8.3027) (-6.4464, 8.6129) (-6.325, 8.9274) (-6.216, 9.2463) (-6.12, 9.5696) (-6.0576, 9.8435) (-6.0125, 10.0636) (-5.9648, 10.2255) (-5.9004, 10.3815) (-5.8165, 10.5283) (-5.728, 10.6379) (-5.6481, 10.7171) (-5.5805, 10.7676) (-5.5113, 10.816) (-5.435, 10.8522) (-5.3575, 10.8857) (-5.2754, 10.9055) (-5.1927, 10.9222) (-5.0801, 10.9262) (-4.9398, 10.9236) (-4.7994, 10.9262) (-4.6869, 10.9222) (-4.6041, 10.9055) (-4.522, 10.8857) (-4.4445, 10.8522) (-4.3682, 10.816) (-4.299, 10.7676) (-4.2314, 10.7171) (-4.1515, 10.6379) (-4.0631, 10.5283) (-3.9791, 10.3815) (-3.9147, 10.2255) (-3.8671, 10.0636) (-3.822, 9.8435) (-3.7595, 9.5696) (-3.6636, 9.2463) (-3.5545, 8.9274) (-3.4331, 8.6129) (-3.3011, 8.3027) (-3.1594, 7.9968) (-3.0089, 7.6952) (-2.85, 7.3979) (-2.629, 7.0065) (-2.4492, 6.7214) (-2.3294, 6.5313) knots -1.0784 -1.0784 -1.0784 -1.0784 -1.010995 -0.977291 -0.943586 -0.909882 -0.876178 -0.842474 -0.80877 -0.775067 -0.741365 -0.707665 -0.690816 -0.67397 -0.657123 -0.640284 -0.623449 -0.615023 -0.606598 -0.598176 -0.589749 -0.581327 -0.572901 -0.564477 -0.556053 -0.5392 -0.522347 -0.513923 -0.505499 -0.497074 -0.488651 -0.480225 -0.471802 -0.463377 -0.454951 -0.438116 -0.421277 -0.40443 -0.387584 -0.370735 -0.337035 -0.303333 -0.26963 -0.235926 -0.202222 -0.168518 -0.134814 -0.101109 -0.067405 0 0 0 0 construction
  line L18 (-2.3294, 6.5313) -> (-1.2671, 6.5313) construction
  spline S11 degree 3 poles (-1.2671, 6.5313) (-1.1473, 6.7214) (-0.9675, 7.0065) (-0.7465, 7.3979) (-0.5877, 7.6952) (-0.4372, 7.9968) (-0.2955, 8.3027) (-0.1634, 8.6129) (-0.042, 8.9274) (0.067, 9.2463) (0.163, 9.5696) (0.2254, 9.8435) (0.2705, 10.0636) (0.3182, 10.2255) (0.3826, 10.3815) (0.4665, 10.5283) (0.555, 10.6379) (0.6349, 10.7171) (0.7025, 10.7676) (0.7717, 10.816) (0.848, 10.8522) (0.9255, 10.8857) (1.0076, 10.9055) (1.0903, 10.9222) (1.2029, 10.9262) (1.3432, 10.9236) (1.4836, 10.9262) (1.5961, 10.9222) (1.6789, 10.9055) (1.761, 10.8857) (1.8385, 10.8522) (1.9148, 10.816) (1.984, 10.7676) (2.0516, 10.7171) (2.1315, 10.6379) (2.2199, 10.5283) (2.3039, 10.3815) (2.3683, 10.2255) (2.4159, 10.0636) (2.461, 9.8435) (2.5235, 9.5696) (2.6194, 9.2463) (2.7285, 8.9274) (2.8499, 8.6129) (2.9819, 8.3027) (3.1236, 7.9968) (3.2741, 7.6952) (3.433, 7.3979) (3.654, 7.0065) (3.8338, 6.7214) (3.9536, 6.5313) knots -1.0784 -1.0784 -1.0784 -1.0784 -1.010995 -0.977291 -0.943586 -0.909882 -0.876178 -0.842474 -0.80877 -0.775067 -0.741365 -0.707665 -0.690816 -0.67397 -0.657123 -0.640284 -0.623449 -0.615023 -0.606598 -0.598176 -0.589749 -0.581327 -0.572901 -0.564477 -0.556053 -0.5392 -0.522347 -0.513923 -0.505499 -0.497074 -0.488651 -0.480225 -0.471802 -0.463377 -0.454951 -0.438116 -0.421277 -0.40443 -0.387584 -0.370735 -0.337035 -0.303333 -0.26963 -0.235926 -0.202222 -0.168518 -0.134814 -0.101109 -0.067405 0 0 0 0 construction
  line L19 (3.9536, 6.5313) -> (5.0159, 6.5313) construction
  spline S12 degree 3 poles (5.0159, 6.5313) (5.1357, 6.7214) (5.3155, 7.0065) (5.5365, 7.3979) (5.6953, 7.6952) (5.8458, 7.9968) (5.9875, 8.3027) (6.1196, 8.6129) (6.241, 8.9274) (6.35, 9.2463) (6.446, 9.5696) (6.5084, 9.8435) (6.5535, 10.0636) (6.6012, 10.2255) (6.6656, 10.3815) (6.7495, 10.5283) (6.838, 10.6379) (6.9179, 10.7171) (6.9855, 10.7676) (7.0547, 10.816) (7.131, 10.8522) (7.2085, 10.8857) (7.2906, 10.9055) (7.3733, 10.9222) (7.4859, 10.9262) (7.6262, 10.9236) (7.7666, 10.9262) (7.8791, 10.9222) (7.9619, 10.9055) (8.044, 10.8857) (8.1215, 10.8522) (8.1978, 10.816) (8.267, 10.7676) (8.3346, 10.7171) (8.4145, 10.6379) (8.5029, 10.5283) (8.5869, 10.3815) (8.6513, 10.2255) (8.6989, 10.0636) (8.744, 9.8435) (8.8065, 9.5696) (8.9024, 9.2463) (9.0115, 8.9274) (9.1329, 8.6129) (9.2649, 8.3027) (9.4066, 7.9968) (9.5571, 7.6952) (9.716, 7.3979) (9.937, 7.0065) (10.1168, 6.7214) (10.2366, 6.5313) knots -1.0784 -1.0784 -1.0784 -1.0784 -1.010995 -0.977291 -0.943586 -0.909882 -0.876178 -0.842474 -0.80877 -0.775067 -0.741365 -0.707665 -0.690816 -0.67397 -0.657123 -0.640284 -0.623449 -0.615023 -0.606598 -0.598176 -0.589749 -0.581327 -0.572901 -0.564477 -0.556053 -0.5392 -0.522347 -0.513923 -0.505499 -0.497074 -0.488651 -0.480225 -0.471802 -0.463377 -0.454951 -0.438116 -0.421277 -0.40443 -0.387584 -0.370735 -0.337035 -0.303333 -0.26963 -0.235926 -0.202222 -0.168518 -0.134814 -0.101109 -0.067405 0 0 0 0 construction
  line L20 (10.2366, 6.5313) -> (11.2989, 6.5313) construction
  spline S13 degree 3 poles (11.2989, 6.5313) (11.4187, 6.7214) (11.5985, 7.0065) (11.8195, 7.3979) (11.9783, 7.6952) (12.1288, 7.9968) (12.2705, 8.3027) (12.4026, 8.6129) (12.524, 8.9274) (12.633, 9.2463) (12.729, 9.5696) (12.7914, 9.8435) (12.8365, 10.0636) (12.8842, 10.2255) (12.9486, 10.3815) (13.0325, 10.5283) (13.121, 10.6379) (13.2009, 10.7171) (13.2685, 10.7676) (13.3377, 10.816) (13.414, 10.8522) (13.4915, 10.8857) (13.5736, 10.9055) (13.6563, 10.9222) (13.7689, 10.9262) (13.9092, 10.9236) (14.0496, 10.9262) (14.1621, 10.9222) (14.2449, 10.9055) (14.327, 10.8857) (14.4045, 10.8522) (14.4808, 10.816) (14.55, 10.7676) (14.6176, 10.7171) (14.6975, 10.6379) (14.7859, 10.5283) (14.8699, 10.3815) (14.9343, 10.2255) (14.9819, 10.0636) (15.027, 9.8435) (15.0895, 9.5696) (15.1854, 9.2463) (15.2945, 8.9274) (15.4159, 8.6129) (15.5479, 8.3027) (15.6896, 7.9968) (15.8401, 7.6952) (15.999, 7.3979) (16.22, 7.0065) (16.3998, 6.7214) (16.5196, 6.5313) knots -1.0784 -1.0784 -1.0784 -1.0784 -1.010995 -0.977291 -0.943586 -0.909882 -0.876178 -0.842474 -0.80877 -0.775067 -0.741365 -0.707665 -0.690816 -0.67397 -0.657123 -0.640284 -0.623449 -0.615023 -0.606598 -0.598176 -0.589749 -0.581327 -0.572901 -0.564477 -0.556053 -0.5392 -0.522347 -0.513923 -0.505499 -0.497074 -0.488651 -0.480225 -0.471802 -0.463377 -0.454951 -0.438116 -0.421277 -0.40443 -0.387584 -0.370735 -0.337035 -0.303333 -0.26963 -0.235926 -0.202222 -0.168518 -0.134814 -0.101109 -0.067405 0 0 0 0 construction
  line L21 (16.5196, 6.5313) -> (17.5819, 6.5313) construction
  spline S14 degree 3 poles (17.5819, 6.5313) (17.7017, 6.7214) (17.8815, 7.0065) (18.1025, 7.3979) (18.2613, 7.6952) (18.4118, 7.9968) (18.5535, 8.3027) (18.6856, 8.6129) (18.807, 8.9274) (18.916, 9.2463) (19.012, 9.5696) (19.0744, 9.8435) (19.1195, 10.0636) (19.1672, 10.2255) (19.2316, 10.3815) (19.3155, 10.5283) (19.404, 10.6379) (19.4839, 10.7171) (19.5515, 10.7676) (19.6207, 10.816) (19.697, 10.8522) (19.7745, 10.8857) (19.8566, 10.9055) (19.9393, 10.9222) (20.0519, 10.9262) (20.1922, 10.9236) (20.3326, 10.9262) (20.4451, 10.9222) (20.5279, 10.9055) (20.61, 10.8857) (20.6875, 10.8522) (20.7638, 10.816) (20.833, 10.7676) (20.9006, 10.7171) (20.9805, 10.6379) (21.0689, 10.5283) (21.1529, 10.3815) (21.2173, 10.2255) (21.2649, 10.0636) (21.31, 9.8435) (21.3725, 9.5696) (21.4684, 9.2463) (21.5775, 8.9274) (21.6989, 8.6129) (21.8309, 8.3027) (21.9726, 7.9968) (22.1231, 7.6952) (22.282, 7.3979) (22.503, 7.0065) (22.6828, 6.7214) (22.8026, 6.5313) knots -1.0784 -1.0784 -1.0784 -1.0784 -1.010995 -0.977291 -0.943586 -0.909882 -0.876178 -0.842474 -0.80877 -0.775067 -0.741365 -0.707665 -0.690816 -0.67397 -0.657123 -0.640284 -0.623449 -0.615023 -0.606598 -0.598176 -0.589749 -0.581327 -0.572901 -0.564477 -0.556053 -0.5392 -0.522347 -0.513923 -0.505499 -0.497074 -0.488651 -0.480225 -0.471802 -0.463377 -0.454951 -0.438116 -0.421277 -0.40443 -0.387584 -0.370735 -0.337035 -0.303333 -0.26963 -0.235926 -0.202222 -0.168518 -0.134814 -0.101109 -0.067405 0 0 0 0 construction
  line L22 (22.8026, 6.5313) -> (23.8649, 6.5313) construction
  spline S15 degree 3 poles (23.8649, 6.5313) (24.118, 6.9328) (24.695, 7.848) (25.4194, 9.839) (25.372, 10.1863) (25.6994, 10.6689) (25.8061, 10.7491) (25.9097, 10.8187) (26.0062, 10.8786) (26.2998, 10.9373) (26.4357, 10.9246) (26.6859, 10.9255) (26.7966, 10.923) (27.0207, 10.8327) (27.1144, 10.7723) (27.2536, 10.6564) (27.315, 10.574) (27.4239, 10.4156) (27.4798, 10.2877) (27.5764, 9.9711) (27.5919, 9.8101) (28.0686, 8.0931) (28.9099, 6.81) (29.0856, 6.5313) knots 0 0 0 0 0.142394 0.142394 0.262557 0.262557 0.314666 0.314666 0.34653 0.34653 0.372217 0.372217 0.394622 0.394622 0.411062 0.411062 0.432958 0.432958 0.48678 0.48678 0.562983 0.562983 0.900876 0.900876 0.900876 0.900876 construction
  line L23 (29.0856, 6.5313) -> (29.0856, 15.9246) construction
  line L24 (29.0856, 15.9246) -> (-70.9144, 15.9246) construction
  line L25 (-70.9144, 15.9246) -> (-70.9144, 6.5313) construction
  line L26 (-70.9144, 6.5313) -> (-70.3801, 6.5313) construction
  arc A8 (10.3609, 4.6909) -> (10.3609, -10.5091) centre (17.0129, -2.9091) ccw
  line L27 (10.3609, 4.6909) -> (23.4363, 4.6909)
  arc A9 (23.4363, -10.5091) -> (23.4363, 4.6909) centre (16.7842, -2.9091) ccw
  line L28 (23.4363, -10.5091) -> (10.3609, -10.5091)
  arc A10 (-7.7124, -10.3995) -> (-7.7124, 4.8005) centre (-14.3644, -2.7995) ccw
  line L29 (-7.7124, -10.3995) -> (-20.7878, -10.3995)
  arc A11 (-20.7878, 4.8005) -> (-20.7878, -10.3995) centre (-14.1357, -2.7995) ccw
  line L30 (-20.7878, 4.8005) -> (-7.7124, 4.8005)
  line L31 (29.0856, 26.0746) -> (19.0856, 26.0746)
  line L32 (19.0856, 26.0746) -> (19.0856, 16.0746)
  line L33 (19.0856, 16.0746) -> (29.0856, 16.0746)
  line L34 (29.0856, 16.0746) -> (29.0856, 26.0746)
  circle A12 centre (24.0856, 21.0744) radius 1.25
  line L35 (19.0856, -26.0744) -> (29.0856, -26.0744)
  line L36 (29.0856, -26.0744) -> (29.0856, -16.0744)
  line L37 (19.0856, -16.0744) -> (19.0856, -26.0744)
  line L38 (29.0856, -16.0744) -> (19.0856, -16.0744)
  circle A13 centre (24.0856, -21.0746) radius 1.25
  line L39 (-29.0854, 16.0746) -> (-19.0854, 16.0746)
  line L40 (-19.0854, 16.0746) -> (-19.0854, 26.0746)
  line L41 (-29.0854, 26.0746) -> (-29.0854, 16.0746)
  line L42 (-19.0854, 26.0746) -> (-29.0854, 26.0746)
  circle A14 centre (-24.0854, 21.0744) radius 1.25
  line L43 (-29.0854, -26.0744) -> (-19.0854, -26.0744)
  line L44 (-19.0854, -26.0744) -> (-19.0854, -16.0744)
  line L45 (-29.0854, -16.0744) -> (-29.0854, -26.0744)
  line L46 (-19.0854, -16.0744) -> (-29.0854, -16.0744)
  circle A15 centre (-24.0854, -21.0746) radius 1.25
  line L47 (19.0856, 16.0746) -> (-19.0854, 16.0746)
  line L48 (-19.0854, 16.0746) -> (-19.0854, 26.0746)
  line L49 (-19.0854, 26.0746) -> (19.0856, 26.0746)
  line L50 (19.0856, 26.0746) -> (19.0856, 16.0746)
  point P0 (29.0856, 229.9846)
  point P1 (-19.0854, 16.0746)
  dimension "d0" = 0.1
  dimension "d1" = 0.1
  dimension "d2" = 10
  dimension "d3" = 10
  dimension "d6" = 42.149
  dimension "d9" = 48.171
extrude "Extrusion1" add sketch "Sketch1" along normal blind 8.3 contours L34 L33 L32 L31 | L32 L47 L40 L49 | L40 L39 L41 L42 | L37 L38 L36 L35 | L45 L46 L44 L43
sketch "Sketch2" plane through (-29.0856, -229.9846, 32.049) normal (0, 0, 1) x (1, 0, 0)
  line L0 (23.4363, -10.5091) -> (10.3609, -10.5091) projected
  arc A0 (10.3609, 4.6909) -> (10.3609, -10.5091) centre (17.0129, -2.9091) ccw projected
  line L1 (10.3609, 4.6909) -> (23.4363, 4.6909) projected
  arc A1 (23.4363, -10.5091) -> (23.4363, 4.6909) centre (16.7842, -2.9091) ccw projected
  arc A2 (-7.7124, -10.3995) -> (-7.7124, 4.8005) centre (-14.3644, -2.7995) ccw projected
  line L2 (-20.7878, 4.8005) -> (-7.7124, 4.8005) projected
  arc A3 (-20.7878, 4.8005) -> (-20.7878, -10.3995) centre (-14.1357, -2.7995) ccw projected
  line L3 (-7.7124, -10.3995) -> (-20.7878, -10.3995) projected
  line L4 (29.0856, -26.0744) -> (29.0856, -16.0744) projected
  line L5 (-29.0854, 26.0746) -> (-29.0854, 16.0746) projected
  line L6 (29.0856, -26.0744) -> (-29.0854, -26.0744)
  line L7 (-29.0854, -26.0744) -> (-29.0854, 26.0746)
  line L8 (-29.0854, 26.0746) -> (29.0856, 26.0746)
  line L9 (29.0856, 26.0746) -> (29.0856, -26.0744)
  circle A4 centre (24.0856, -21.0746) radius 1.25 projected
  circle A5 centre (-24.0854, -21.0746) radius 1.25 projected
  circle A6 centre (-24.0854, 21.0744) radius 1.25 projected
  circle A7 centre (24.0856, 21.0744) radius 1.25 projected
  point P0 (29.0856, 229.9846)
extrude "Extrusion2" add sketch "Sketch2" along normal blind 10
ref_plane "Work Plane2" through (-29.0856, -229.9846, 38.549) normal (0, 0, 1) x (1, 0, 0)
sketch "Sketch3" plane through (-29.0856, -229.9846, 38.549) normal (0, 0, 1) x (1, 0, 0)
  circle A0 centre (24.0856, -21.0746) radius 2.915 projected
  circle A1 centre (24.0856, -21.0746) radius 3.415
  line L0 (29.0856, -26.0744) -> (29.0856, 26.0746) construction
  line L1 (29.0856, 26.0746) -> (-29.0854, 26.0746) construction
  line L2 (-29.0854, 26.0746) -> (-29.0854, -26.0744) construction
  line L3 (-29.0854, -26.0744) -> (29.0856, -26.0744) construction
  circle A2 centre (24.0856, -21.0746) radius 1.25 construction
  circle A3 centre (-24.0854, -21.0746) radius 1.25 construction
  circle A4 centre (-24.0854, 21.0744) radius 1.25 construction
  circle A5 centre (24.0856, 21.0744) radius 1.25 construction
  line L4 (-20.7878, 4.8005) -> (-7.7124, 4.8005) construction
  arc A6 (-7.7124, -10.3995) -> (-7.7124, 4.8005) centre (-14.3644, -2.7995) ccw construction
  line L5 (-7.7124, -10.3995) -> (-20.7878, -10.3995) construction
  arc A7 (-20.7878, 4.8005) -> (-20.7878, -10.3995) centre (-14.1357, -2.7995) ccw construction
  line L6 (10.3609, 4.6909) -> (23.4363, 4.6909) construction
  arc A8 (23.4363, -10.5091) -> (23.4363, 4.6909) centre (16.7842, -2.9091) ccw construction
  line L7 (23.4363, -10.5091) -> (10.3609, -10.5091) construction
  arc A9 (10.3609, 4.6909) -> (10.3609, -10.5091) centre (17.0129, -2.9091) ccw construction
  circle A10 centre (24.0856, 21.0744) radius 3.415
  circle A11 centre (-24.0854, -21.0746) radius 3.415
  circle A12 centre (-24.0854, 21.0744) radius 3.415
  point P0 (29.0856, 229.9846)
  dimension "d17" = 0.5
  dimension "d20" = 42.149
  dimension "d23" = 48.171
extrude "Extrusion3" cut sketch "Sketch3" along normal blind 30.75 contours A0 | A1 | A10 | A11 | A12
properties part number "house_V5"
